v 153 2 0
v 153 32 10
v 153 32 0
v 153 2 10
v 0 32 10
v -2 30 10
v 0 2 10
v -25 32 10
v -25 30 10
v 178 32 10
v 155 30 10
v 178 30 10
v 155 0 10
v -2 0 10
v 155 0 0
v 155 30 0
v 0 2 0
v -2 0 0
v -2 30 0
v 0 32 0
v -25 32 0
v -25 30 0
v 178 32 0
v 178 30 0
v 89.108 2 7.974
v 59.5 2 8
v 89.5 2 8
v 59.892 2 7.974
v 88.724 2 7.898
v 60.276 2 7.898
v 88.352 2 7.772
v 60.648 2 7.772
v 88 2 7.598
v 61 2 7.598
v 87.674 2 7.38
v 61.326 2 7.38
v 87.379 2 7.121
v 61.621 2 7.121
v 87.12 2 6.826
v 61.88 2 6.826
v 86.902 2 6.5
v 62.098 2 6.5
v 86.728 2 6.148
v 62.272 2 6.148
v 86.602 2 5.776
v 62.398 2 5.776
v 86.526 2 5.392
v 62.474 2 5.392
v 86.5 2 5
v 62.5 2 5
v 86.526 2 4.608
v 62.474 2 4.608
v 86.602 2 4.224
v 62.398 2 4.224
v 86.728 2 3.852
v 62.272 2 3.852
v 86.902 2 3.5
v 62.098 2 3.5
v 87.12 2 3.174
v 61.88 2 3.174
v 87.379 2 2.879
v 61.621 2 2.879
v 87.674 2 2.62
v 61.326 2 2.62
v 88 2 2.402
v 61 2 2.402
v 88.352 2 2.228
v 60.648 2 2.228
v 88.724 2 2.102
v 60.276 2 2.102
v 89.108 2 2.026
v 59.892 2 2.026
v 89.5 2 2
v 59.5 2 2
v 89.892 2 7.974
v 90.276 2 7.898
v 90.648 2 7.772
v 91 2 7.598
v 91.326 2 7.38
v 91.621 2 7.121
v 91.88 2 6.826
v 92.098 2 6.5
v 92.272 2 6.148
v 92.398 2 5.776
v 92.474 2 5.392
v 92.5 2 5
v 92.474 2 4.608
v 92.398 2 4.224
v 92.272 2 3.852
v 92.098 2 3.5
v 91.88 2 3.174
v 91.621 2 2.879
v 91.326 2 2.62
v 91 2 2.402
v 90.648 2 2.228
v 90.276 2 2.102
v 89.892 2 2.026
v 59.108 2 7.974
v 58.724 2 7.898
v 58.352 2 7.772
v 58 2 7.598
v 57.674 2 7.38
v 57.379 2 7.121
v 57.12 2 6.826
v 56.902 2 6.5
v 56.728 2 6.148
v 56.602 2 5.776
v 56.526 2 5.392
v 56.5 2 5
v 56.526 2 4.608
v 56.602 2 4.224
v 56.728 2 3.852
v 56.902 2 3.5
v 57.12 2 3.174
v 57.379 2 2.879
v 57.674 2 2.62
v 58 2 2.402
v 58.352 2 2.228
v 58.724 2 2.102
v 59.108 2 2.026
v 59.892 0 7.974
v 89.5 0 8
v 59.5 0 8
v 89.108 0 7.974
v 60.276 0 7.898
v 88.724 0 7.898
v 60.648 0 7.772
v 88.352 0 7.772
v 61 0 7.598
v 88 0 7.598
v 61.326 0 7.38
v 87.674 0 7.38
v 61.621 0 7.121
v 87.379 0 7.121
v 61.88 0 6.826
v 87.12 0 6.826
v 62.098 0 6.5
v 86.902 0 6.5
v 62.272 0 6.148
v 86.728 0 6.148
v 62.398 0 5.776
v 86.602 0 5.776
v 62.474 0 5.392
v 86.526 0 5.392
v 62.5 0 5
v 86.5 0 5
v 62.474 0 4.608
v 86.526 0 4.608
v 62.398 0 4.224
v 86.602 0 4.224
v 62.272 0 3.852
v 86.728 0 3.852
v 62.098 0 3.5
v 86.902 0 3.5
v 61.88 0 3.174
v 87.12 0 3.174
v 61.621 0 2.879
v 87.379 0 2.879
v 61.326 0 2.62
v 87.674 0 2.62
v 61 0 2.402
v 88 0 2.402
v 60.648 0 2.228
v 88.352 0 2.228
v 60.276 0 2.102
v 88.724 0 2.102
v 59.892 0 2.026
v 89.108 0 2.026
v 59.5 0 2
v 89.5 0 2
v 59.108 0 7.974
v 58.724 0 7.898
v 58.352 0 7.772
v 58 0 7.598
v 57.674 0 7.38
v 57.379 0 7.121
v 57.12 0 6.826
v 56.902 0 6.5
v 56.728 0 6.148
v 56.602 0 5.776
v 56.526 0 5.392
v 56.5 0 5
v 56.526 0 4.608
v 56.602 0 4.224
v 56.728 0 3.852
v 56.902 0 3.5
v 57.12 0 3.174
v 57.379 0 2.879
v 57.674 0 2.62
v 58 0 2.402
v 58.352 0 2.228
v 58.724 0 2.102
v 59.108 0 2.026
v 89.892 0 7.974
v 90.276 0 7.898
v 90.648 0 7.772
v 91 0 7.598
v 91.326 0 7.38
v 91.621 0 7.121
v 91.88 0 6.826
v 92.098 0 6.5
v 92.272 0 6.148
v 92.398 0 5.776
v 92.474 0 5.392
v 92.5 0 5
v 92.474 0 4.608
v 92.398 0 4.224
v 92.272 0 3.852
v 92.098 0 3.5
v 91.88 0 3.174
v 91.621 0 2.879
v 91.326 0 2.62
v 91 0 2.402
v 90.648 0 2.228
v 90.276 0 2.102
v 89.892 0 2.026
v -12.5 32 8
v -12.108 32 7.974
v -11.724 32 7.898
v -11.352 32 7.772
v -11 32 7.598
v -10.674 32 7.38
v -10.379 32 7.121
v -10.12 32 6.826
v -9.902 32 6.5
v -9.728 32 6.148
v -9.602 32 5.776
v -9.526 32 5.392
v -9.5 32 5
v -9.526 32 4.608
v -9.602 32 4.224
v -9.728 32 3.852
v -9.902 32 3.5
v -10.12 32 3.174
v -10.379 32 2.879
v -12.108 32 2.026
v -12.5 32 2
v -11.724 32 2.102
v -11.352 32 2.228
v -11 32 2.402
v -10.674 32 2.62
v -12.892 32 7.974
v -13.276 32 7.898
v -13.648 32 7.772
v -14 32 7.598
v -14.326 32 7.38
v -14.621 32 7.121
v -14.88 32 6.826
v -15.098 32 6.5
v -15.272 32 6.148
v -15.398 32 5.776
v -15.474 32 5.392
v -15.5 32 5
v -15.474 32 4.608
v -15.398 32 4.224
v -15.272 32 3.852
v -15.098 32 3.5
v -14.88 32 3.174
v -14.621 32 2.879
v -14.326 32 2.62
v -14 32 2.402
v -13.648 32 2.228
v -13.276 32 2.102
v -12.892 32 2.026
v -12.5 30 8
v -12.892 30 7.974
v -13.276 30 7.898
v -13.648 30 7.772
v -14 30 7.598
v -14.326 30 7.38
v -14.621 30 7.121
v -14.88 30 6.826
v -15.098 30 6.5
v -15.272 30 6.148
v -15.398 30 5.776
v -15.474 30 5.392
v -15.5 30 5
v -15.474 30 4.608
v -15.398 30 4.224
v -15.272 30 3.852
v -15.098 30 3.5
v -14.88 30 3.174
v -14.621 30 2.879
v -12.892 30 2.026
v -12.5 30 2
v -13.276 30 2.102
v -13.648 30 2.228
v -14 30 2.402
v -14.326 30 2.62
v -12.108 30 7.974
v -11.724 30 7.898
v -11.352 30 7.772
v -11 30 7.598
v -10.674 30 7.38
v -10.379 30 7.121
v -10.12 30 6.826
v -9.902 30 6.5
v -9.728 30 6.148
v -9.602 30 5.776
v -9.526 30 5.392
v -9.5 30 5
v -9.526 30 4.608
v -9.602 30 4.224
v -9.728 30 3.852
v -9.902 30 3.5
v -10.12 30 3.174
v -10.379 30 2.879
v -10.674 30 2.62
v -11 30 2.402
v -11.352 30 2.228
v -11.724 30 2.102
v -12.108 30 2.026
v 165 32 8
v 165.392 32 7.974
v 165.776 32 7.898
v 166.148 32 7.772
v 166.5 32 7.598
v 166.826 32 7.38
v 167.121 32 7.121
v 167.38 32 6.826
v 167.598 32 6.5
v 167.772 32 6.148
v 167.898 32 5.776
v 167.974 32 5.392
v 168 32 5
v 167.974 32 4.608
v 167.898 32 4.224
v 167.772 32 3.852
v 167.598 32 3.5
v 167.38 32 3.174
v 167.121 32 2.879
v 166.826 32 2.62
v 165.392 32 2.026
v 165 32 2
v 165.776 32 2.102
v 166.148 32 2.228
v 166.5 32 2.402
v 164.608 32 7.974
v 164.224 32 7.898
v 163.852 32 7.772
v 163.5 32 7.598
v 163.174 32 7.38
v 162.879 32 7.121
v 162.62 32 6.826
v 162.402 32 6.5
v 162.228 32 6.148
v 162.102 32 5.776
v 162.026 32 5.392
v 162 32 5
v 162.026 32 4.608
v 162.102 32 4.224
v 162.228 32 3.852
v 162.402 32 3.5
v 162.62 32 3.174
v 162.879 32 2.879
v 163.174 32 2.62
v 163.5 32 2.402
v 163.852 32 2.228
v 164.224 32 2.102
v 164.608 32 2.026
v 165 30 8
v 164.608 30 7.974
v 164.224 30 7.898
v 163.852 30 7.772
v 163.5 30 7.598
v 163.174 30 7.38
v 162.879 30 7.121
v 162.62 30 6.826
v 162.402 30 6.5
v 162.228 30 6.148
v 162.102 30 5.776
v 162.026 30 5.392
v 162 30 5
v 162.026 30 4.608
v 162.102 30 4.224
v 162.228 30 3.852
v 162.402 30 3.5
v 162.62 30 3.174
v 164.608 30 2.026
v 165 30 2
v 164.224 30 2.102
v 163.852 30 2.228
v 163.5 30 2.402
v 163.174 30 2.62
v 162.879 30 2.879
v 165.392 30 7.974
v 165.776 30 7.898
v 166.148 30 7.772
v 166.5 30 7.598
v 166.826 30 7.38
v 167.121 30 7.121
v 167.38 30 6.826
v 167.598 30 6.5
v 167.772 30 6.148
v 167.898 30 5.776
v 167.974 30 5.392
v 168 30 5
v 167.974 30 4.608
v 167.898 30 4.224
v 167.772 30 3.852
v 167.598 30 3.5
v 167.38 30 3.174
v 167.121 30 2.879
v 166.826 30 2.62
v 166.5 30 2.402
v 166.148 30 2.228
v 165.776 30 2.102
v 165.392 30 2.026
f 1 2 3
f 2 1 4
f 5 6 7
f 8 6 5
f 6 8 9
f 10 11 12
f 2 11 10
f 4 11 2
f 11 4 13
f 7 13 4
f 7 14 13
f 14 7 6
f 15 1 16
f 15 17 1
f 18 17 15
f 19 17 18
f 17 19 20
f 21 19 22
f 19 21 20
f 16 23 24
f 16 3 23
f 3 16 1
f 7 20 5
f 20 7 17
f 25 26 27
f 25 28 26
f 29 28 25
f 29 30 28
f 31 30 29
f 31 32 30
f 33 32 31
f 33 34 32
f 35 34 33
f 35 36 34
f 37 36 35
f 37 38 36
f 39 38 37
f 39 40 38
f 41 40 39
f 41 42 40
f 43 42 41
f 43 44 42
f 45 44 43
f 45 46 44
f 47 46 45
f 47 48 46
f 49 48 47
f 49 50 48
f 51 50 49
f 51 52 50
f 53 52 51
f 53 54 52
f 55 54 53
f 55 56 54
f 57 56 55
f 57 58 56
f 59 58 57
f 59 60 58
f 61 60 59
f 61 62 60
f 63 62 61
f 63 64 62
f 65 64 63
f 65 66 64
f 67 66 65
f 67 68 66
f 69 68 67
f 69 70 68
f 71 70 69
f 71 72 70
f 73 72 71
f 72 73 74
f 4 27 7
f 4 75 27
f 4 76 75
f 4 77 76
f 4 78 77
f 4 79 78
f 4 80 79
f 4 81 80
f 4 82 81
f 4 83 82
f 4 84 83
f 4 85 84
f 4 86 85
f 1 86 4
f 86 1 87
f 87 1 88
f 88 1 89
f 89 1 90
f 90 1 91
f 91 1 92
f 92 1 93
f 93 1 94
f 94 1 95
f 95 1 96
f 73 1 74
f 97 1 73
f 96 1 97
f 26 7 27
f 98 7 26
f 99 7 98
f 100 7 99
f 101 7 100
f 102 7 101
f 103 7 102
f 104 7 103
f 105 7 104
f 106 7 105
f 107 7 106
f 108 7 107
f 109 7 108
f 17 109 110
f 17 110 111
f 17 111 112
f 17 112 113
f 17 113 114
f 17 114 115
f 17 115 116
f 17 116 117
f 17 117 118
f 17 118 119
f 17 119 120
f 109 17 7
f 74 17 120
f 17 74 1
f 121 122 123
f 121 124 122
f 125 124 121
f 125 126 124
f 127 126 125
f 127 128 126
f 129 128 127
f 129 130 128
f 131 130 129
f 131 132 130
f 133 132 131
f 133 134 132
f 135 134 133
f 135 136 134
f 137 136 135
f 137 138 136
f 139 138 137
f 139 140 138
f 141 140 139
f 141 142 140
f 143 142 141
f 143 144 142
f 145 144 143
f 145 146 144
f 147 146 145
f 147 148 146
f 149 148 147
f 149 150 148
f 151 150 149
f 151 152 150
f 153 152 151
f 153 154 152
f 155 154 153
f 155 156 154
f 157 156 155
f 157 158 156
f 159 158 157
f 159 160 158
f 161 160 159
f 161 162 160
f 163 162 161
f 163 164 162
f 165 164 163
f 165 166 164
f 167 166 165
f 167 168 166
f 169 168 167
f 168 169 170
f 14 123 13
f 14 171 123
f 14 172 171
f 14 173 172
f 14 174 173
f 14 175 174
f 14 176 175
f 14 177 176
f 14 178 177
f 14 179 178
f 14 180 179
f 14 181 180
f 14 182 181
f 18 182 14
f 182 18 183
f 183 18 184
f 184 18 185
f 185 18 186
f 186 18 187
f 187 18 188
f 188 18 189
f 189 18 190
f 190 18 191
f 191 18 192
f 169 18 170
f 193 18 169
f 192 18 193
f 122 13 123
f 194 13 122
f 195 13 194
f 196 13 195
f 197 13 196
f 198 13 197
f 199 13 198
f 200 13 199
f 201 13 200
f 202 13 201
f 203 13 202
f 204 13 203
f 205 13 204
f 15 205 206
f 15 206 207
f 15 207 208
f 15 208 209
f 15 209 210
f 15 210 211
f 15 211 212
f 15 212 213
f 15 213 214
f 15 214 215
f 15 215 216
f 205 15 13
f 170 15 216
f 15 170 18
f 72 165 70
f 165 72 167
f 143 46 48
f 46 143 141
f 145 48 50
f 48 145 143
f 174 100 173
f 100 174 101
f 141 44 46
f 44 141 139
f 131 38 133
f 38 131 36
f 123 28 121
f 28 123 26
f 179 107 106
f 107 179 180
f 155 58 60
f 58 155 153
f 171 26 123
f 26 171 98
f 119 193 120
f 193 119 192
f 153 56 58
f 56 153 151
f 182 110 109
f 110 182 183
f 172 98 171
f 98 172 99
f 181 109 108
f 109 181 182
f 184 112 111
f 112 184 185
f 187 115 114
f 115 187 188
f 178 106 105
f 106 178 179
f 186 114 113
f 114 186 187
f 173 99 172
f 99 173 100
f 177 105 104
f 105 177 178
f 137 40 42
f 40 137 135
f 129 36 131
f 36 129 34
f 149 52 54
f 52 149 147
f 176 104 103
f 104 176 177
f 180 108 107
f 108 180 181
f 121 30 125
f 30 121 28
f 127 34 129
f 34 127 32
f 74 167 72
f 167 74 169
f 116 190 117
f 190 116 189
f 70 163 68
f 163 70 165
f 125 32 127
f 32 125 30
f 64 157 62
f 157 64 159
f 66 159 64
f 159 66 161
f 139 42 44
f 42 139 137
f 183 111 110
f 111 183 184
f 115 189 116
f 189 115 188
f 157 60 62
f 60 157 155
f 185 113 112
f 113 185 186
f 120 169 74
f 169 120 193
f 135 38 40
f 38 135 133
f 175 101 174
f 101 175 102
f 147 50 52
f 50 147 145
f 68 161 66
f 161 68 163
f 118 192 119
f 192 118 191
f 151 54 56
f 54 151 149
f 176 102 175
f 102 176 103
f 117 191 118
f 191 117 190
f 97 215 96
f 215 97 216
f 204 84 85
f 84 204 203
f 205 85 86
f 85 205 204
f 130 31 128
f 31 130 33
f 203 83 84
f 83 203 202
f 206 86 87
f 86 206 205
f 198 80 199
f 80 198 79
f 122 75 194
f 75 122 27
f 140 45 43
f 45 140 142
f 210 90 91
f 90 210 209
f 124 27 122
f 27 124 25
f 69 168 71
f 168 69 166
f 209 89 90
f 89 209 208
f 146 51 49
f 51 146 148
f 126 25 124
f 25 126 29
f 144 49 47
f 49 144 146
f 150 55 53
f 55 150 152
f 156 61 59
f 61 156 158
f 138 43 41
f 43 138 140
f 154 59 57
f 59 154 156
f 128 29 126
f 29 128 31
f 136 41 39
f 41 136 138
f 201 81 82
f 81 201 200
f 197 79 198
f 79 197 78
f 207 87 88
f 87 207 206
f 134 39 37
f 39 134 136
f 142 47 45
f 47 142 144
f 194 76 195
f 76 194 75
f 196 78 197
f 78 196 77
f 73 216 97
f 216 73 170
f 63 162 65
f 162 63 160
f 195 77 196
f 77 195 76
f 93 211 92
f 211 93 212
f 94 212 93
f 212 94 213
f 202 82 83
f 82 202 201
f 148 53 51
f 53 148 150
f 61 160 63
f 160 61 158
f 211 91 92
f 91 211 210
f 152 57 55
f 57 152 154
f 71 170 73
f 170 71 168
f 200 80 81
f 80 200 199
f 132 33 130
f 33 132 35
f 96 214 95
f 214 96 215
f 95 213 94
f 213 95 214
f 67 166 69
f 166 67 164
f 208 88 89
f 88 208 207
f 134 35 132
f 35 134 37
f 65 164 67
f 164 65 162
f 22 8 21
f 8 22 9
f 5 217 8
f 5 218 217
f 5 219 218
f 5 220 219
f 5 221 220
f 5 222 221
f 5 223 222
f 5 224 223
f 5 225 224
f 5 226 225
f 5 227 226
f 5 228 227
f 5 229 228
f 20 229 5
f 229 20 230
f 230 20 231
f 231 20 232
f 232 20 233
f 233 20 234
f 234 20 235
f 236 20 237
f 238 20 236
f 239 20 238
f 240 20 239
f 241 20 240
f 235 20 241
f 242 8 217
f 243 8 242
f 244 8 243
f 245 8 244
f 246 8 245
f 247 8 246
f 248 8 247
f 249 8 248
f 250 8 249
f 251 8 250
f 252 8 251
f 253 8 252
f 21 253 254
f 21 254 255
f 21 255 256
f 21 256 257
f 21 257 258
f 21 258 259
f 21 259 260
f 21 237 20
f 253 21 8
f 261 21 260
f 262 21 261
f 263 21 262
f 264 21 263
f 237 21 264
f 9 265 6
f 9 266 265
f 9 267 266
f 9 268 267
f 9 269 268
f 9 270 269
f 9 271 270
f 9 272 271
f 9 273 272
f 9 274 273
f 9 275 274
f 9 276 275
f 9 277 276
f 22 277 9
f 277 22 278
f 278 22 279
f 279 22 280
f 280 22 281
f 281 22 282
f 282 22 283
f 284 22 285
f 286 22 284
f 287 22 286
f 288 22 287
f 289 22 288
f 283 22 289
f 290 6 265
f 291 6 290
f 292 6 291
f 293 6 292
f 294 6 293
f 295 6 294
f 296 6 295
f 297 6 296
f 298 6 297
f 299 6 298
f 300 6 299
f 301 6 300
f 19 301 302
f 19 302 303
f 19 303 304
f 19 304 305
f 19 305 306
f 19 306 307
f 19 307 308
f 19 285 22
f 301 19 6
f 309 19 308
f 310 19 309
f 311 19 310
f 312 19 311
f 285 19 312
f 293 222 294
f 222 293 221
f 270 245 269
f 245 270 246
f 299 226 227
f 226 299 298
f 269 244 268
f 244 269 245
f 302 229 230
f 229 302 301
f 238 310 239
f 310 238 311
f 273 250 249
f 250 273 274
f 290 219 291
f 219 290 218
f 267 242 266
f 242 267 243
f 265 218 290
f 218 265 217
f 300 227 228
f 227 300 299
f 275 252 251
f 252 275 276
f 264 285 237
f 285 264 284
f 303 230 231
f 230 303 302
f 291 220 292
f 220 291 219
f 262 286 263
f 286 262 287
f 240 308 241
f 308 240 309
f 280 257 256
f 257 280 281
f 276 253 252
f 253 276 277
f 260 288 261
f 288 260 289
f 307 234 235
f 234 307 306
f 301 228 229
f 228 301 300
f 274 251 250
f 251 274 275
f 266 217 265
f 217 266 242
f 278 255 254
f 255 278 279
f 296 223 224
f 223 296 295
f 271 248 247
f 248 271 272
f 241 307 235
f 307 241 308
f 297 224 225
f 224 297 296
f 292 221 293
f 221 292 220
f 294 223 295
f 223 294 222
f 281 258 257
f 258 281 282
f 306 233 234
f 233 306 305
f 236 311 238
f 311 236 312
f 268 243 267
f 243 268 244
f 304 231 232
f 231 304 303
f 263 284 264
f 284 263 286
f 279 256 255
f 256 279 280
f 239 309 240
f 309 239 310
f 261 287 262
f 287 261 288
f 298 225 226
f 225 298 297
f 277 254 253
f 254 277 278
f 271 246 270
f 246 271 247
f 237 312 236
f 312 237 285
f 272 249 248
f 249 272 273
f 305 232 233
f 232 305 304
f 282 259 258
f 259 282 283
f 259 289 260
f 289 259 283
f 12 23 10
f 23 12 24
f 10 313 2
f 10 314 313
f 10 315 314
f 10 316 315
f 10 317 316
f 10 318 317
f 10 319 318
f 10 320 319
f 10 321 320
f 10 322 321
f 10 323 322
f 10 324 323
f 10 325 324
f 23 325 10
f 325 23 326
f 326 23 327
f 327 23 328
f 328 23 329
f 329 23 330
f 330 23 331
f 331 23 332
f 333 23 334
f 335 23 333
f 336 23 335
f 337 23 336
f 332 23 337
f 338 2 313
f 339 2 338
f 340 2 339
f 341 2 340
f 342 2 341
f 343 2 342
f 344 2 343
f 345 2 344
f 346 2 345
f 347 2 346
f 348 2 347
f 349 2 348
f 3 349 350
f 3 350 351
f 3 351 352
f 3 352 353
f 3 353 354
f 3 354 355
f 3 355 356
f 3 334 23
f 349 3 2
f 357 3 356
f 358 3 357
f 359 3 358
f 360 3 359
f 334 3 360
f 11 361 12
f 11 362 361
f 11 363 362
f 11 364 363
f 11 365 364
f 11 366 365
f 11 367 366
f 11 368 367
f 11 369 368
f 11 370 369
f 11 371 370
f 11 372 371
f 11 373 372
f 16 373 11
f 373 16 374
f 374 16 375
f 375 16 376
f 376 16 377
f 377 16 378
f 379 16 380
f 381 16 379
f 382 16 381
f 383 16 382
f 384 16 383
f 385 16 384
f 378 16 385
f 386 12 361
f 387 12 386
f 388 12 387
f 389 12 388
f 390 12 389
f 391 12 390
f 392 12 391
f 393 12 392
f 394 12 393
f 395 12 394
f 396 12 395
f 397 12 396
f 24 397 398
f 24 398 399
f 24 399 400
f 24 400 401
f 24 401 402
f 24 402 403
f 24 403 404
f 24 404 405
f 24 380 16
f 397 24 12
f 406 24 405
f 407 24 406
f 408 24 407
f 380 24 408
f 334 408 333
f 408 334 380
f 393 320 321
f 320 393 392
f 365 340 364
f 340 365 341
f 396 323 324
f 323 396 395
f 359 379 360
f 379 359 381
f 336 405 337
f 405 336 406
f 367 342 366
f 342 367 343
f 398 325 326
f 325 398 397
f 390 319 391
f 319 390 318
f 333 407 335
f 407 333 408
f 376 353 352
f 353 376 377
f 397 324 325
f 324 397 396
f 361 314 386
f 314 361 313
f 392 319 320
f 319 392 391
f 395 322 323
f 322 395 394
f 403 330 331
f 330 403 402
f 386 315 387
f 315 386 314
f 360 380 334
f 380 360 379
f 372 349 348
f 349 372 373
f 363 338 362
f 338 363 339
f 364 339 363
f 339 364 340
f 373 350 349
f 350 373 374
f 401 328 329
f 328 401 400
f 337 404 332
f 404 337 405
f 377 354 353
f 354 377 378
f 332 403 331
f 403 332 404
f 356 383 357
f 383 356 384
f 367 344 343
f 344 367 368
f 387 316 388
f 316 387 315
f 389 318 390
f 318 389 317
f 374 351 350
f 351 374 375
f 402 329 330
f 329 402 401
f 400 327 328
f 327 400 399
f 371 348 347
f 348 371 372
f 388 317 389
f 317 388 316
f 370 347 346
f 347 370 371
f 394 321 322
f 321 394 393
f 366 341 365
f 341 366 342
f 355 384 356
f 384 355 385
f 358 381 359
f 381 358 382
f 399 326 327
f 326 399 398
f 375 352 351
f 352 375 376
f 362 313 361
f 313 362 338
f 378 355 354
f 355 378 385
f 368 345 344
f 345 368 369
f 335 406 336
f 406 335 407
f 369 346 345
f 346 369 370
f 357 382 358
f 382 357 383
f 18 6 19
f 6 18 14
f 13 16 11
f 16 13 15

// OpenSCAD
$fa = 1;
$fs = 0.4;

B_HEIGHT=10;

// Two inner holes for fan mount
difference(){
    cube([153,2,B_HEIGHT]);

    translate([59.5,2.5,5]){
        rotate([90,0,0]){
            cylinder(h=4,r=3);
        }
    }

    translate([53.5+36,2.5,5]){
        rotate([90,0,0]){
            cylinder(h=4,r=3);
        }
    }
}



// Side brackets
translate([-2,0,0]){
cube([2,30,B_HEIGHT]);
}


translate([153,0,0]){
cube([2,30,B_HEIGHT]);
}


difference(){
    translate([-25,30,0]){
        cube([25,2,B_HEIGHT]);
    }

    translate([-12.5,35,5]){
        rotate([90,0,0]){
            cylinder(h=6,r=3);
        }
    }
}



difference(){

    translate([153,30,0]){
        cube([25,2,B_HEIGHT]);
    }

    translate([165,35,5]){
        rotate([90,0,0]){
            cylinder(h=6,r=3);
        }
    }

}
